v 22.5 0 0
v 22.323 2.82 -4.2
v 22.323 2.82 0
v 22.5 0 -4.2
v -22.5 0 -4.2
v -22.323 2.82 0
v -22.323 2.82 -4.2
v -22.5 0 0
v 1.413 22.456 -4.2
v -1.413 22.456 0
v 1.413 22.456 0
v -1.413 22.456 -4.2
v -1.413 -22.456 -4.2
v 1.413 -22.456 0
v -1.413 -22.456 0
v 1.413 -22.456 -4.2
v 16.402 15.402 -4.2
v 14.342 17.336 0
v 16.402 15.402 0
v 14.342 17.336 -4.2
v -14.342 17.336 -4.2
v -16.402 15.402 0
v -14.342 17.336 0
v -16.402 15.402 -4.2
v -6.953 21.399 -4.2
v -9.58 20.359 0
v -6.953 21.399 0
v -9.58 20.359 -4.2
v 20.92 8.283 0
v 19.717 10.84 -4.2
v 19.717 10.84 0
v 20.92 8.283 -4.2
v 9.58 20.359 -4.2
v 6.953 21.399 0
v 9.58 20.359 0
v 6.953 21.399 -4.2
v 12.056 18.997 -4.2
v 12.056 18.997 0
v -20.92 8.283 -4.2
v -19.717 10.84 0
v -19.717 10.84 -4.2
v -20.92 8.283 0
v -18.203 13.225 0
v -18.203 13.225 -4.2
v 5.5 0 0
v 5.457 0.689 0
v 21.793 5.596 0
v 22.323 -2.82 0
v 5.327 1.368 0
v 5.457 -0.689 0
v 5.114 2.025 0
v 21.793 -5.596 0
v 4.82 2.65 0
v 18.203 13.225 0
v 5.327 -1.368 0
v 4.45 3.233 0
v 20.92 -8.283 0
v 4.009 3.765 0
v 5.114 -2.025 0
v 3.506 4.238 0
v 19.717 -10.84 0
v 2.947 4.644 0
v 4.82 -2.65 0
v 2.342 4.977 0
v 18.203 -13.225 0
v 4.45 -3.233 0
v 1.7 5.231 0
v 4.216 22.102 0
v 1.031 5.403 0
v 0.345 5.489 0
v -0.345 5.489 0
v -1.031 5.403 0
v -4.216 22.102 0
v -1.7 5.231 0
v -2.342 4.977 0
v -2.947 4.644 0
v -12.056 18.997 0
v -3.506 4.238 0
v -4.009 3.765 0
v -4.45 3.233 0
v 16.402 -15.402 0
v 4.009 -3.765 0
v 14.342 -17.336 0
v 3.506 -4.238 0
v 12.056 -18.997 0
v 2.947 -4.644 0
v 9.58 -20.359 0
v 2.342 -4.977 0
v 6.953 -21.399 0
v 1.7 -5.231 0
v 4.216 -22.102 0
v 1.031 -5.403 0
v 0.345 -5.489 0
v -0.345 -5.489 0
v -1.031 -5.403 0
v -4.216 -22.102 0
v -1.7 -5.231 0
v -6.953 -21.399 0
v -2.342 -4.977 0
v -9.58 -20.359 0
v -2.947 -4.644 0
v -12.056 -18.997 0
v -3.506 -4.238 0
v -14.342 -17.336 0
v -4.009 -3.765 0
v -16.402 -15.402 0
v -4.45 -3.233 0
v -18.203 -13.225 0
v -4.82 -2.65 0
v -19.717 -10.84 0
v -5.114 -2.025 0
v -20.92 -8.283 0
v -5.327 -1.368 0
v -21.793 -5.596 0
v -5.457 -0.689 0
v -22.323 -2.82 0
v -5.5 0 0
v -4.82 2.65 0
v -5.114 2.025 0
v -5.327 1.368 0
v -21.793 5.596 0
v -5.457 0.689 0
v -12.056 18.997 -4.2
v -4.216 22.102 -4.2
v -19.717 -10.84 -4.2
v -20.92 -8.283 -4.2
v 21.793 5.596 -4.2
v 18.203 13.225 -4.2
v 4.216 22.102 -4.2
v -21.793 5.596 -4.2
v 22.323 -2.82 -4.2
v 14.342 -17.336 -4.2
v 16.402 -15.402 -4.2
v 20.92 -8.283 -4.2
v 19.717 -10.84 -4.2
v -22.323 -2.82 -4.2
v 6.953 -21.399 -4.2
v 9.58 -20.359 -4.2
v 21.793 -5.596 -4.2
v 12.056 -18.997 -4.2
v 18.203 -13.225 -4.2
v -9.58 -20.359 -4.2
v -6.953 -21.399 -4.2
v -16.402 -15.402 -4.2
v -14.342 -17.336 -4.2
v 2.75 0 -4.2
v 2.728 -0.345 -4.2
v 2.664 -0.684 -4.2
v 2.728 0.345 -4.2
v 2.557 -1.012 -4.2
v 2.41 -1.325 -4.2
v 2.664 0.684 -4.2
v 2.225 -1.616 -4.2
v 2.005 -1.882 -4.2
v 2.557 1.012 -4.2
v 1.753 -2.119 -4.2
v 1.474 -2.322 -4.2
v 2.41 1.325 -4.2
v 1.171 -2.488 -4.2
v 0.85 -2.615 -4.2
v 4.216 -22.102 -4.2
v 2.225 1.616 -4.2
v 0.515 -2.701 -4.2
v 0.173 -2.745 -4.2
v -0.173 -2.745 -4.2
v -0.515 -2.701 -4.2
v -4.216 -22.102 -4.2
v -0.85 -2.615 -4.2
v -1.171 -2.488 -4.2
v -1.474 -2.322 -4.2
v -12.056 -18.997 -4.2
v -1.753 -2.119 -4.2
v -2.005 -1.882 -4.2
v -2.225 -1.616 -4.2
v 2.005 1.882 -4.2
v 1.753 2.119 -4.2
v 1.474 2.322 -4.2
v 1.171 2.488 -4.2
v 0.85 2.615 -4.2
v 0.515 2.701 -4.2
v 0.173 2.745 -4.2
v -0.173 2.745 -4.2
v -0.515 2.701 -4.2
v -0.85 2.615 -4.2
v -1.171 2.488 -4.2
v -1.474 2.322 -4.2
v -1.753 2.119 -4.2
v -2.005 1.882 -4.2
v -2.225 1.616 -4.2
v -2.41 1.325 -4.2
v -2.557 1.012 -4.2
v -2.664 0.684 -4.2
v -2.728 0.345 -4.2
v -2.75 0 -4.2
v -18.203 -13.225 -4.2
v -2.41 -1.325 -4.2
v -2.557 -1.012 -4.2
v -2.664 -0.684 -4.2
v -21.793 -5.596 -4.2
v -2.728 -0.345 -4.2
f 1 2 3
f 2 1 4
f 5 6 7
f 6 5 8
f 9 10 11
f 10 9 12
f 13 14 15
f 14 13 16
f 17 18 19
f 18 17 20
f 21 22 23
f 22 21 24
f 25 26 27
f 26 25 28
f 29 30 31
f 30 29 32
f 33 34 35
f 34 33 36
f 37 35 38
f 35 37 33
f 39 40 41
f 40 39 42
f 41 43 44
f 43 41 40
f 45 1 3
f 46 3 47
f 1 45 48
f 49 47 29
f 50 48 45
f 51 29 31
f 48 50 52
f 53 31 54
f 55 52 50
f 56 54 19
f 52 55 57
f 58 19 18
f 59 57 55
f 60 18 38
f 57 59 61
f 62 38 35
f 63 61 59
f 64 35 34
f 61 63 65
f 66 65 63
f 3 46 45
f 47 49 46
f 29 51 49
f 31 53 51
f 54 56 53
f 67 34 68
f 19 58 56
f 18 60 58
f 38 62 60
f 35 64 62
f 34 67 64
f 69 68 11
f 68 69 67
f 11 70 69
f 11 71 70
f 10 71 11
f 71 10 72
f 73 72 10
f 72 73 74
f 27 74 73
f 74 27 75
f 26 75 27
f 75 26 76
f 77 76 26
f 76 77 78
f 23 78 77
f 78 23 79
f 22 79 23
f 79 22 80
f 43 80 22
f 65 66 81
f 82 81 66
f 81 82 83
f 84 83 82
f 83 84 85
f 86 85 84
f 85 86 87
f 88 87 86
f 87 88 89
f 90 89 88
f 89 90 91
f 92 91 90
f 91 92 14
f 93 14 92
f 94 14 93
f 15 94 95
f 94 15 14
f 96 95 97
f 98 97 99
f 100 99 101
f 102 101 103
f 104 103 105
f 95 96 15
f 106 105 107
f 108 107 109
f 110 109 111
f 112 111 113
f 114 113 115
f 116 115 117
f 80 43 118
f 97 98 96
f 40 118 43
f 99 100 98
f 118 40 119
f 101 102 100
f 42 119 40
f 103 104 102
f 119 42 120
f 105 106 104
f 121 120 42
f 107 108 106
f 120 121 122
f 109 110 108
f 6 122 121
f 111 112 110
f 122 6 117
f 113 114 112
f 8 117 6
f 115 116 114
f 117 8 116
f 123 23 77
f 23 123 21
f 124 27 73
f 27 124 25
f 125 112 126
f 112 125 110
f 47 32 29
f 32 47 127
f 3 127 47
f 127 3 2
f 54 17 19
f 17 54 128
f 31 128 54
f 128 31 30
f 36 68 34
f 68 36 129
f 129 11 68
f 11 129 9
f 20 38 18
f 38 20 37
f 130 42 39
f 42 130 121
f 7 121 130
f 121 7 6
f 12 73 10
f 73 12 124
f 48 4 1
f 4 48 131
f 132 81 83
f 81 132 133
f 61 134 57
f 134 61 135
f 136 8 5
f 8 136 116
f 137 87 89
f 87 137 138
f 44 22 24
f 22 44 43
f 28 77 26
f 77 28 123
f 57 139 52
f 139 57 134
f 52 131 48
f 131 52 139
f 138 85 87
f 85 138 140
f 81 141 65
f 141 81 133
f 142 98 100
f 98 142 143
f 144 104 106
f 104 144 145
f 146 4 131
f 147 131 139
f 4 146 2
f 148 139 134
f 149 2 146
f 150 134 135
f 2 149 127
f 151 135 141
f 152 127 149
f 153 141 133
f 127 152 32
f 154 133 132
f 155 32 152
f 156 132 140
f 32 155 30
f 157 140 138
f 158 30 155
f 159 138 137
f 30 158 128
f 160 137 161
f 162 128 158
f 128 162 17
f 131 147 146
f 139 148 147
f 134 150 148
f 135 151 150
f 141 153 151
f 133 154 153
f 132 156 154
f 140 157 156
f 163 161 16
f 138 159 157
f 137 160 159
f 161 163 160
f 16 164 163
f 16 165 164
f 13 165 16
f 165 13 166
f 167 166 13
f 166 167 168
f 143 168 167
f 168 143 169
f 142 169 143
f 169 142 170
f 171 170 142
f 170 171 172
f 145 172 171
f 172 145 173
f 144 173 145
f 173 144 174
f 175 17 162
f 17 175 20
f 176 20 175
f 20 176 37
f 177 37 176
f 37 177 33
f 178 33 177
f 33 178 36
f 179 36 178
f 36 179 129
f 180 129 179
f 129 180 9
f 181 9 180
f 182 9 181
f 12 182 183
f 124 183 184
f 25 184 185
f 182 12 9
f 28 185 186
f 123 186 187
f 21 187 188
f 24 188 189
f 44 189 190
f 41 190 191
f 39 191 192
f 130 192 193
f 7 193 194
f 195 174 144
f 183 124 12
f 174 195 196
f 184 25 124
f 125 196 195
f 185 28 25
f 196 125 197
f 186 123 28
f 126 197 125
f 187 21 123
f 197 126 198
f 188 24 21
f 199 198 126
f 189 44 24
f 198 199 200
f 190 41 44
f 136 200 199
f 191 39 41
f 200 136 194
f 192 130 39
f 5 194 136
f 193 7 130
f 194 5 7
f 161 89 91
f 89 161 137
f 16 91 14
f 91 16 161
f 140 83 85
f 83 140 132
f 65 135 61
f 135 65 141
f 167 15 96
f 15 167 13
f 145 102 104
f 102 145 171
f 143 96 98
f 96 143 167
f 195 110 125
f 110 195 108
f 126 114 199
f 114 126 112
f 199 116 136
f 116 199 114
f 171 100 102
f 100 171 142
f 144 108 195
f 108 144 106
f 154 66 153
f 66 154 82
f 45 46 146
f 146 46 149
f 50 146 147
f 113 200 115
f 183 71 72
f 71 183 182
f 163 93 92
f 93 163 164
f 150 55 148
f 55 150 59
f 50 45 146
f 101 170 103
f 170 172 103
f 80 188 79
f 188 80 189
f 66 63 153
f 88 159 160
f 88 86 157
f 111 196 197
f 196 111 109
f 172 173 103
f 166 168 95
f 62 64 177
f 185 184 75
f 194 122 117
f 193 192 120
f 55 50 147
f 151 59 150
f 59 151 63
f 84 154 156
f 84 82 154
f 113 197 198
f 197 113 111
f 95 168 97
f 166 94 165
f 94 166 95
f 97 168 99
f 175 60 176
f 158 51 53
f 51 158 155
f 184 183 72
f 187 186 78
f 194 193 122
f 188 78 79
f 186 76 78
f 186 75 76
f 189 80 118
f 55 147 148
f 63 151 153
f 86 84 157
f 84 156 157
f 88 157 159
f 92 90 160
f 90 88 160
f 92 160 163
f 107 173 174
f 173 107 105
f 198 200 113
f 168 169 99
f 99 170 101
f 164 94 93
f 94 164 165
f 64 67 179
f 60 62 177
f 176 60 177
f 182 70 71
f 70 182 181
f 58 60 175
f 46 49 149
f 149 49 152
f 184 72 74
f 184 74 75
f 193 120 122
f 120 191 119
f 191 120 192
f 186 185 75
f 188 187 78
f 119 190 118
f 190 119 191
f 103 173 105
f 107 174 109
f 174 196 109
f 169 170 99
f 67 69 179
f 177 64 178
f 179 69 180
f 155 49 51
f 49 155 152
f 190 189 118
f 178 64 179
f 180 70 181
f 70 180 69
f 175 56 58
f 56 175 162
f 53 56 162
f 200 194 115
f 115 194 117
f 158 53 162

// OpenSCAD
$fn = 50;


difference() {
	union() {
		translate(v = [0, 0, -4.2000000000]) {
			cylinder(h = 4.2000000000, r = 22.5000000000);
		}
		translate(v = [0, 0, -4.2000000000]) {
			cylinder(h = 4.2000000000, r = 2.8750000000);
		}
	}
	union() {
		translate(v = [0, 0, 0]) {
			rotate(a = [0, 0, 0]) {
				difference() {
					union() {
						#translate(v = [0, 0, -4.2000000000]) {
							cylinder(h = 4.2000000000, r = 2.2500000000);
						}
						#translate(v = [0, 0, -4.2000000000]) {
							cylinder(h = 4.2000000000, r1 = 2.7500000000, r2 = 5.5000000000);
						}
						#translate(v = [0, 0, -4.2000000000]) {
							cylinder(h = 4.2000000000, r = 2.7500000000);
						}
						#translate(v = [0, 0, -4.2000000000]) {
							cylinder(h = 4.2000000000, r = 2.2500000000);
						}
					}
					union();
				}
			}
		}
	}
}
